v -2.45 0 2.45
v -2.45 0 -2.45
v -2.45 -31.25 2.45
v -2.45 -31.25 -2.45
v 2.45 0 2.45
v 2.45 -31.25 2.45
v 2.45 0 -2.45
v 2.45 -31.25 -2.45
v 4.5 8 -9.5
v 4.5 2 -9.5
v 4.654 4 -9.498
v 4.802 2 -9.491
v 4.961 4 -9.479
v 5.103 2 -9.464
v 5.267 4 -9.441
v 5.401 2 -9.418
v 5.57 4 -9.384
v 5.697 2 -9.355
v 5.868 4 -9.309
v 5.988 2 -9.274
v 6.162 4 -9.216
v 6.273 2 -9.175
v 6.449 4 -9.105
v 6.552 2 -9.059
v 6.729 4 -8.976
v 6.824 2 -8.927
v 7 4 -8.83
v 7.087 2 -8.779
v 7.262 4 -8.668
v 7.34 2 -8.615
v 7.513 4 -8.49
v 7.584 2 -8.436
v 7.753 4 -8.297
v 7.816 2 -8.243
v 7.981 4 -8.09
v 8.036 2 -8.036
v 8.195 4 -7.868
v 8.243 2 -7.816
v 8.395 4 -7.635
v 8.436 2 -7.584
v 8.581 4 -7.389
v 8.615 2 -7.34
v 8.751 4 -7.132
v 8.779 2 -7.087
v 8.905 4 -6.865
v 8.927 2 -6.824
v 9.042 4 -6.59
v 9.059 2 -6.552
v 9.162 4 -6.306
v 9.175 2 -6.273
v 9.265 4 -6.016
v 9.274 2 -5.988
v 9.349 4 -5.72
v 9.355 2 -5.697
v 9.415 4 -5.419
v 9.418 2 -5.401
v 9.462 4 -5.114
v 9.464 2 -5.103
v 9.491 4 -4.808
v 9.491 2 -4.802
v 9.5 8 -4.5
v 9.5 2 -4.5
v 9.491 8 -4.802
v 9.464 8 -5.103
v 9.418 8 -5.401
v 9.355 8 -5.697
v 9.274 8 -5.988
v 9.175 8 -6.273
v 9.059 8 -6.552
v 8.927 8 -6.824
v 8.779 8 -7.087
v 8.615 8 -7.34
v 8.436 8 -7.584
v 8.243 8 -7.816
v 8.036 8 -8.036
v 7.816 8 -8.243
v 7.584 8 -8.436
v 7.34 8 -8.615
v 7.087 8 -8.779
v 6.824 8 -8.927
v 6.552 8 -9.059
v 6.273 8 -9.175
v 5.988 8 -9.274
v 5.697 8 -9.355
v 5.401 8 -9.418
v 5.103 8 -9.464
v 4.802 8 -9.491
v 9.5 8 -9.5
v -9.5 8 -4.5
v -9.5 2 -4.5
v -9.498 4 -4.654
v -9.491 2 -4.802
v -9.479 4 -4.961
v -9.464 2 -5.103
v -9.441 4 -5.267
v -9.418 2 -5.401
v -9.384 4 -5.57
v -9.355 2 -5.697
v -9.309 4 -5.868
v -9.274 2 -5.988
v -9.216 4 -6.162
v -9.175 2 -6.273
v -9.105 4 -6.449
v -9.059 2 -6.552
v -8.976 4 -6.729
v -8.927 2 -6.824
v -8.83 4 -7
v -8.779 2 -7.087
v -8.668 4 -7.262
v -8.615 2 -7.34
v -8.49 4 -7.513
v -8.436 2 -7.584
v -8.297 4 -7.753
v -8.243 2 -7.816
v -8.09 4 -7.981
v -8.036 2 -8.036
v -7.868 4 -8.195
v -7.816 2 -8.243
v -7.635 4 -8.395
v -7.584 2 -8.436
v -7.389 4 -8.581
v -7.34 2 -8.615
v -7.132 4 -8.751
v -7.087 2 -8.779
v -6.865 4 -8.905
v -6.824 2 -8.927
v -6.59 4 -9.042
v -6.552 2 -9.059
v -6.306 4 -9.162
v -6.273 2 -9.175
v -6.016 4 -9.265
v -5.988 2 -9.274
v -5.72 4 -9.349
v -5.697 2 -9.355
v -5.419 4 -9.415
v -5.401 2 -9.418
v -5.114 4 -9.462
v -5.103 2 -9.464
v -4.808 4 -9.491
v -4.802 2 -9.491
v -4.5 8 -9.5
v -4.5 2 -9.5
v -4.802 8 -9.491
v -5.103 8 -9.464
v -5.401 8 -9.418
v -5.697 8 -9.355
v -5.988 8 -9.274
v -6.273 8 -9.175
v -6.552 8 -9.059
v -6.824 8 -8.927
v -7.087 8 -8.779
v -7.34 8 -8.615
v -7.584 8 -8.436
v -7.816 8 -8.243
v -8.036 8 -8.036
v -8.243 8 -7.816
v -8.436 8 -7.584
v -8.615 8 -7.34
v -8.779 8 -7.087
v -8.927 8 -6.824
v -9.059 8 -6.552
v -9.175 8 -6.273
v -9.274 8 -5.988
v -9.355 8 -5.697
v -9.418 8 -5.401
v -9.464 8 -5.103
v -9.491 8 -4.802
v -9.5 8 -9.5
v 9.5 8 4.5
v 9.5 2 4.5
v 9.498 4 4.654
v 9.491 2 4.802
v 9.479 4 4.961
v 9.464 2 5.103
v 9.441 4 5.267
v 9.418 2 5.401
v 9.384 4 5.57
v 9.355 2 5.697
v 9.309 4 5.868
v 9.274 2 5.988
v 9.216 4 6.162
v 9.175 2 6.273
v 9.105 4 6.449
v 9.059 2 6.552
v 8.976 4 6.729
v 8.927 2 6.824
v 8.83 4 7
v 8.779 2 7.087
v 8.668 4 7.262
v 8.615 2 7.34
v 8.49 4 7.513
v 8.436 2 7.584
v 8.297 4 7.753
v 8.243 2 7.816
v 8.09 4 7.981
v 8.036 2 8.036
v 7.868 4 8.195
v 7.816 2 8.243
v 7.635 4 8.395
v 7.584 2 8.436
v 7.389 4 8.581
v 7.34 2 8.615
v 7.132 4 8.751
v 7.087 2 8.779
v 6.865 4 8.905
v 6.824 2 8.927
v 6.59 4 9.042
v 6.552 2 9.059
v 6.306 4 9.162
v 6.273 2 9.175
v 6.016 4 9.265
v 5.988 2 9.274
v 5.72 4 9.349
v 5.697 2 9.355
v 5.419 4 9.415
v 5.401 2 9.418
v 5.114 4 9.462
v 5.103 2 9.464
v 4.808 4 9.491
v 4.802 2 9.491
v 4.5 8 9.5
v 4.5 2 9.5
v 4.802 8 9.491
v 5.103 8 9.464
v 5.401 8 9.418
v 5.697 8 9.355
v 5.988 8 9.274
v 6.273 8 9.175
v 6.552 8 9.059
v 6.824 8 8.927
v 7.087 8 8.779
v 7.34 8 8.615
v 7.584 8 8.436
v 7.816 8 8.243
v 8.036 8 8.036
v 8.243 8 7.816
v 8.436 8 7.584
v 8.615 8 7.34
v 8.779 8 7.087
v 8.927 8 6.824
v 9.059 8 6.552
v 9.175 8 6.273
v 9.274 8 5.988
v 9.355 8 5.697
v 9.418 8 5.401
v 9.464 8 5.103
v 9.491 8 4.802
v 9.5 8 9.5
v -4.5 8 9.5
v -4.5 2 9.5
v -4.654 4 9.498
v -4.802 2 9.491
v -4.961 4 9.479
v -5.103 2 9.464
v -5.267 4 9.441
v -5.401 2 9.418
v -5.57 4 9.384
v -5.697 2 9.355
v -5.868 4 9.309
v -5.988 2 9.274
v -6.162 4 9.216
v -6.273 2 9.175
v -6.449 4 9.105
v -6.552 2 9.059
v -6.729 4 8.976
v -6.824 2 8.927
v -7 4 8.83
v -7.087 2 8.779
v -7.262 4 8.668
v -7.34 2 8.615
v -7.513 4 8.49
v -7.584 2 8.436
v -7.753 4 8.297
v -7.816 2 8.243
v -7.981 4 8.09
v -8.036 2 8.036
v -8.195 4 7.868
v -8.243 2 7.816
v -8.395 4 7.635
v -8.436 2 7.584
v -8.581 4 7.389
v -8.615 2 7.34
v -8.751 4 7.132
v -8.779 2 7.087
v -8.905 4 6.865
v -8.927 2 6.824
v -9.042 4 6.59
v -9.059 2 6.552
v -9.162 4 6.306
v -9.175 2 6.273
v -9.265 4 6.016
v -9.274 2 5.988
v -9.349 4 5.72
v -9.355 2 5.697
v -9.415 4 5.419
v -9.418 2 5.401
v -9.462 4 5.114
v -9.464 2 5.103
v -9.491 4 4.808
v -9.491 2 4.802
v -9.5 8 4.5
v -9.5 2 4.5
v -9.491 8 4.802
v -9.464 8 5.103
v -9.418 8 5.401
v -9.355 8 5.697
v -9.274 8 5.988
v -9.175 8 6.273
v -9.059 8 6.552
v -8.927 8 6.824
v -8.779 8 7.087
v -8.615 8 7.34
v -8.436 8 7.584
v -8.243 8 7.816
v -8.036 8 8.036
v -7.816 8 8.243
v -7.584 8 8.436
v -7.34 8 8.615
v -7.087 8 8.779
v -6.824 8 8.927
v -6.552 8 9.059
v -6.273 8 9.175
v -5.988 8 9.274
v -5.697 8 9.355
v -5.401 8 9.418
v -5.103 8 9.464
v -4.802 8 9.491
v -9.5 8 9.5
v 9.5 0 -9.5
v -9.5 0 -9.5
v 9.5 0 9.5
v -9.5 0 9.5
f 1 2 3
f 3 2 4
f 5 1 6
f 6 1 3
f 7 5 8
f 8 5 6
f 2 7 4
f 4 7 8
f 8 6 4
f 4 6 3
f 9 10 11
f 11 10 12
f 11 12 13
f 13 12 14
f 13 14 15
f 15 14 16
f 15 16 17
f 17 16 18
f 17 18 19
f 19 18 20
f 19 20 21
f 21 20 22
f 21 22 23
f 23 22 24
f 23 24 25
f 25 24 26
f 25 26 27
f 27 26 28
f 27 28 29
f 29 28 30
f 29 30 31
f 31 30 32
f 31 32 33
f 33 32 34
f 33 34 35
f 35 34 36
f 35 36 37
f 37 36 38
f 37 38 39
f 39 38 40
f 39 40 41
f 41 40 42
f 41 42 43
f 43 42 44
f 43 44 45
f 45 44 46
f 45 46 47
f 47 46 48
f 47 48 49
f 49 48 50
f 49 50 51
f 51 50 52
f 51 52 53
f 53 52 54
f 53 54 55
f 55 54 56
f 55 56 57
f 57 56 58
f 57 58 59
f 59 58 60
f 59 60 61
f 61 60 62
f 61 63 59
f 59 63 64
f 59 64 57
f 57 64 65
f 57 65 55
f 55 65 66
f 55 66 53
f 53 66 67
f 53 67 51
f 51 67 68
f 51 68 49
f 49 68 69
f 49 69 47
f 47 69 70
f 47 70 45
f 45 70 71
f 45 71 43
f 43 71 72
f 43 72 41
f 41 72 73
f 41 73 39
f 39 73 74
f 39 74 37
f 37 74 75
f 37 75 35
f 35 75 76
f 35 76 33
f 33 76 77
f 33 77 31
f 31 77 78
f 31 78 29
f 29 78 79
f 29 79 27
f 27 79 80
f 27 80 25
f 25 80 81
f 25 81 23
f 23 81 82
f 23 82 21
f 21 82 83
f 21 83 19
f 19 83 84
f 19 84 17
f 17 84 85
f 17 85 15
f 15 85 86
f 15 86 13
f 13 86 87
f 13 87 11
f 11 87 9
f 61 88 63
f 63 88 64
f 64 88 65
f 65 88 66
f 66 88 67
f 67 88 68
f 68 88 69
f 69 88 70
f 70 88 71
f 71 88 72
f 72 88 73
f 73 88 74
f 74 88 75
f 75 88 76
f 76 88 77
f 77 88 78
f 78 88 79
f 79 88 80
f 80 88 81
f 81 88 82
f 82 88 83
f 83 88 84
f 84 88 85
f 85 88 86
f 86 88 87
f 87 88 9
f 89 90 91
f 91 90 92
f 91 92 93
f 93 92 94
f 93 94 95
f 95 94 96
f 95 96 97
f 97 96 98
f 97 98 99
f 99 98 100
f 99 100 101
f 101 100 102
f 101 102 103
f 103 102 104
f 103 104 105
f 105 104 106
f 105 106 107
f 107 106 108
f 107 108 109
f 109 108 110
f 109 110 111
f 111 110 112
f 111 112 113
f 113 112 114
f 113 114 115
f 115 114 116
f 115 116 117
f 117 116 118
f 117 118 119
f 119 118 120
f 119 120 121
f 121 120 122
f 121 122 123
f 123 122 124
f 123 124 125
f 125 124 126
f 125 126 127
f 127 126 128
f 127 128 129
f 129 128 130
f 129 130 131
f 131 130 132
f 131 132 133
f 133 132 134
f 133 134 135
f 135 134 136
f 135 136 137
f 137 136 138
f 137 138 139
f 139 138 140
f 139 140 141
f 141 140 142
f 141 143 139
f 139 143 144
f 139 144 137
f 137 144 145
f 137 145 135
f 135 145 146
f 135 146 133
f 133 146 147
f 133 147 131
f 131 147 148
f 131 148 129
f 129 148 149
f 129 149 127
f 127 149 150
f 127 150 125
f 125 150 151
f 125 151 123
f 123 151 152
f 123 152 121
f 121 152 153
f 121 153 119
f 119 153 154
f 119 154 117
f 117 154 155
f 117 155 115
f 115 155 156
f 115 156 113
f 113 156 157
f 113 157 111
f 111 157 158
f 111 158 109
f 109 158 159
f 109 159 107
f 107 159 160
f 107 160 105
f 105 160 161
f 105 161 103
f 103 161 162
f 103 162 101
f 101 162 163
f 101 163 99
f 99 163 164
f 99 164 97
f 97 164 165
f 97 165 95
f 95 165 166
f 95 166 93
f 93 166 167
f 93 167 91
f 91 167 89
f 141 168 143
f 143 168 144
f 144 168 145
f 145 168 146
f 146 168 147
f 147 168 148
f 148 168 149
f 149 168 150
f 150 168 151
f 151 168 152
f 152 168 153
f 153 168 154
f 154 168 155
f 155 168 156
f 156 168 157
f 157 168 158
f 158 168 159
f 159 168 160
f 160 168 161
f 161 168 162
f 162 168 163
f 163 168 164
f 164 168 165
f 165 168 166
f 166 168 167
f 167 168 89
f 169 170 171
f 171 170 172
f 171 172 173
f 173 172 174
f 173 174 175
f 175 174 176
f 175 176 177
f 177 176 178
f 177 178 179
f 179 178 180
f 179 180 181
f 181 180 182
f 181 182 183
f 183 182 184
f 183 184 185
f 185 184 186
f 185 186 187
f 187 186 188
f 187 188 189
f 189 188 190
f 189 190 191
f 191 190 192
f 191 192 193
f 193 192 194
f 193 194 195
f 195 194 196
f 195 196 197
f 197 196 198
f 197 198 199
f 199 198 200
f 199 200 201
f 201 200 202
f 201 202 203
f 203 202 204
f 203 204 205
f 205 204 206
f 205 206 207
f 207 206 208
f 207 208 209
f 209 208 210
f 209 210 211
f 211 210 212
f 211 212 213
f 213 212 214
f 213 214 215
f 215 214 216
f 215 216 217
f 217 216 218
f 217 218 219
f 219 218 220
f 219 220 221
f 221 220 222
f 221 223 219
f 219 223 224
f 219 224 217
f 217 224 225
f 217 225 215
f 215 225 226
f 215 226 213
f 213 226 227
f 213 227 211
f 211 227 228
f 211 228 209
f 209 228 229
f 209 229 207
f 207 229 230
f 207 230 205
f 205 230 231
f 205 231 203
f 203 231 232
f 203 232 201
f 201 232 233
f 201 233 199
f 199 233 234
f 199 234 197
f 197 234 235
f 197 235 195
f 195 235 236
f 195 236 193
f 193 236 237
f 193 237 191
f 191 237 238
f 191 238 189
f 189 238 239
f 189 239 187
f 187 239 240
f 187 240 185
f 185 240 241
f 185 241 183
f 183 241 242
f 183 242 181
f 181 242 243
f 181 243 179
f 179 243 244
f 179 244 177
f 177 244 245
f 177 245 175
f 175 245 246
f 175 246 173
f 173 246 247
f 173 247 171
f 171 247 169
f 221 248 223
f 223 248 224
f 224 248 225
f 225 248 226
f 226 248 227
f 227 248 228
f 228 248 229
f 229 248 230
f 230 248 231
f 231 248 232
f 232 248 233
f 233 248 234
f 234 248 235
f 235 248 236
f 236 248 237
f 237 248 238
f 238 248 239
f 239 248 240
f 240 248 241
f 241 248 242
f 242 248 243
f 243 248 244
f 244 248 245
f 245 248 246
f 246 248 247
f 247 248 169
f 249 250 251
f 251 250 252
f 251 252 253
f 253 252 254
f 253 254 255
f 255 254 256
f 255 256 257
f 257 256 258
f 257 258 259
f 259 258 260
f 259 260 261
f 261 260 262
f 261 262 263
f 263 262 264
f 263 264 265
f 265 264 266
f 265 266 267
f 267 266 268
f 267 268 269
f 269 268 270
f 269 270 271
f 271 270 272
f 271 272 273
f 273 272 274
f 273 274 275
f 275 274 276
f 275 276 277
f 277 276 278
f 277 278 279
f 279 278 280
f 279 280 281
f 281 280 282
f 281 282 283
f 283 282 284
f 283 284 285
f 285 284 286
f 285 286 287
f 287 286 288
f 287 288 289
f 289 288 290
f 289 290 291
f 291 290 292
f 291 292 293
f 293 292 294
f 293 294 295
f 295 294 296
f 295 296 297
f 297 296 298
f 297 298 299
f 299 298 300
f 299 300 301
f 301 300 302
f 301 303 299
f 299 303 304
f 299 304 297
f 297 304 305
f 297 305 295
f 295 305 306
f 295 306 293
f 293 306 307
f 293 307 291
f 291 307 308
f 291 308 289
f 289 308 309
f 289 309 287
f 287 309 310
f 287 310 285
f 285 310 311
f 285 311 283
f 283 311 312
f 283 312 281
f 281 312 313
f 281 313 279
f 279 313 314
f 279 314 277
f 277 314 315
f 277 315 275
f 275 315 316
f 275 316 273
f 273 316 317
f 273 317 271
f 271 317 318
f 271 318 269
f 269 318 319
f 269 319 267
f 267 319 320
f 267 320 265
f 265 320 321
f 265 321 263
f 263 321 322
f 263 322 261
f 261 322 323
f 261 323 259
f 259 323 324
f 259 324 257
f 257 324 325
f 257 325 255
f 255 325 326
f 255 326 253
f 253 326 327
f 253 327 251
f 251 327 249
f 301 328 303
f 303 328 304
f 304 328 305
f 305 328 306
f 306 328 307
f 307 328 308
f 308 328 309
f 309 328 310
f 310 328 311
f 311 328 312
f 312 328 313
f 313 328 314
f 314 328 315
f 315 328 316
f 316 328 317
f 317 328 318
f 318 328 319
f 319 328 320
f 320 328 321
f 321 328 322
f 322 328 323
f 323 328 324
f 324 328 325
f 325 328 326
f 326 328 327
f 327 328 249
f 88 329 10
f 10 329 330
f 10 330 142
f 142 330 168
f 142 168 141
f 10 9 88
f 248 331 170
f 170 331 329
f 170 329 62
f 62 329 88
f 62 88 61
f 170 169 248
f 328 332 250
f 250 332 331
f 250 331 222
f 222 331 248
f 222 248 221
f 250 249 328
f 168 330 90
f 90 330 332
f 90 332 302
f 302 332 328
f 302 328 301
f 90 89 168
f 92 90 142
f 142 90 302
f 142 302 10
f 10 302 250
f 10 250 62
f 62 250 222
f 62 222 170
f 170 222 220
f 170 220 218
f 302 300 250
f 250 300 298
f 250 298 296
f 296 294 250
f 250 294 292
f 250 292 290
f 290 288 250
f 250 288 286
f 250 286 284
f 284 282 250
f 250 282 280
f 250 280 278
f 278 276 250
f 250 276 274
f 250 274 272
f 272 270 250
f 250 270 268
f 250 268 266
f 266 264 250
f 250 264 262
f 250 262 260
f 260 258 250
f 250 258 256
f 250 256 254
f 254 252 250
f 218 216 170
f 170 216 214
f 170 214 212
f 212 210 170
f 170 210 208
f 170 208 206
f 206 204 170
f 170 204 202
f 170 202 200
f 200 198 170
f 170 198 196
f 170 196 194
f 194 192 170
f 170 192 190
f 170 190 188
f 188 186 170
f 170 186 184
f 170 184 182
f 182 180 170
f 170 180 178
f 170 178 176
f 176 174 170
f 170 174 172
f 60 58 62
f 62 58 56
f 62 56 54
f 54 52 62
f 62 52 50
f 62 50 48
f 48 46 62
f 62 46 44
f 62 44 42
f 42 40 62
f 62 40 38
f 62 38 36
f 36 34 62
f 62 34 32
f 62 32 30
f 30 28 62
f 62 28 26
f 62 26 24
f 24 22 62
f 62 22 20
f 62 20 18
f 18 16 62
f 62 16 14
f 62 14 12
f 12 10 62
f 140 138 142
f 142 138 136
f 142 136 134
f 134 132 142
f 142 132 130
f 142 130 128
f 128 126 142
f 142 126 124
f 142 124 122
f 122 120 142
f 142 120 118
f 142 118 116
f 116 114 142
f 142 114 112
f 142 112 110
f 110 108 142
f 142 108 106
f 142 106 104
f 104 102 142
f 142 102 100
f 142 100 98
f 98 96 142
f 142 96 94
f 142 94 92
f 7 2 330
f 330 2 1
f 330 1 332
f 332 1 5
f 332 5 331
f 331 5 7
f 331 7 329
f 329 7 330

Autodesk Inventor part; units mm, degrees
ref_plane "YZ Plane" through (0, 0, 0) normal (1, 0, 0) x (0, 1, 0)
ref_plane "XZ Plane" through (0, 0, 0) normal (0, 1, 0) x (-1, 0, 0)
ref_plane "XY Plane" through (0, 0, 0) normal (0, 0, 1) x (1, 0, 0)
sketch "Sketch1" plane through (0, 0, 0) normal (0, 1, 0) x (-1, 0, 0)
  line L0 (-9.5, 9.5) -> (9.5, 9.5)
  line L1 (9.5, 9.5) -> (9.5, -9.5)
  line L2 (9.5, -9.5) -> (-9.5, -9.5)
  line L3 (-9.5, -9.5) -> (-9.5, 9.5)
  line L4 (-9.5, 9.5) -> (9.5, -9.5) construction
  line L5 (9.5, 9.5) -> (-9.5, -9.5) construction
  line L6 (9.5, 0) -> (9.5, 4.5)
  line L7 (9.5, 0) -> (14, 0) construction
  line L8 (0, 9.5) -> (4.5, 9.5)
  line L9 (0, 9.5) -> (4.5, 9.5) construction
  arc A0 (9.5, 4.5) -> (4.5, 9.5) centre (4.5, 4.5) ccw
  arc A1 (-4.5, 9.5) -> (-9.5, 4.5) centre (-4.5, 4.5) ccw
  arc A2 (-9.5, -4.5) -> (-4.5, -9.5) centre (-4.5, -4.5) ccw
  arc A3 (4.5, -9.5) -> (9.5, -4.5) centre (4.5, -4.5) ccw
  point P0 (0, 0)
  point P1 (9.5, -4.5)
  point P2 (-4.5, 9.5)
  point P3 (-9.5, 4.5)
  point P4 (-9.5, -4.5)
  point P5 (-4.5, -9.5)
  dimension "d0" = 19
  dimension "d1" = 19
  dimension "d2" = 4.5
  dimension "d3" = 90
  dimension "d4" = 4.5
  dimension "d5" = 0
  dimension "d6" = 5
  dimension "d9" = 360
extrude "Extrusion1" add sketch "Sketch1" along normal blind 2 contours L0 A0 L1 A3 L2 A2 L3 A1
extrude "Extrusion2" add sketch "Sketch1" along normal blind 8 contours L0 A1 L3 | A2 L2 L3 | L0 L1 A0 | A3 L1 L2
sketch "Sketch2" plane through (0, 0, 0) normal (0, -1, 0) x (1, 0, 0)
  line L0 (-2.45, 2.45) -> (-2.45, -2.45)
  line L1 (-2.45, -2.45) -> (2.45, -2.45)
  line L2 (2.45, -2.45) -> (2.45, 2.45)
  line L3 (2.45, 2.45) -> (-2.45, 2.45)
  line L4 (-2.45, 2.45) -> (2.45, -2.45) construction
  line L5 (-2.45, -2.45) -> (2.45, 2.45) construction
  line L6 (-2.45, 2.45) -> (2.45, 2.45) construction
  point P0 (0, 0)
  dimension "d22" = 4.9
  dimension "d23" = 90
  dimension "d24" = 4.9
extrude "Extrusion3" add sketch "Sketch2" along normal blind 31.25
properties part number "CenterClawv2.2"
